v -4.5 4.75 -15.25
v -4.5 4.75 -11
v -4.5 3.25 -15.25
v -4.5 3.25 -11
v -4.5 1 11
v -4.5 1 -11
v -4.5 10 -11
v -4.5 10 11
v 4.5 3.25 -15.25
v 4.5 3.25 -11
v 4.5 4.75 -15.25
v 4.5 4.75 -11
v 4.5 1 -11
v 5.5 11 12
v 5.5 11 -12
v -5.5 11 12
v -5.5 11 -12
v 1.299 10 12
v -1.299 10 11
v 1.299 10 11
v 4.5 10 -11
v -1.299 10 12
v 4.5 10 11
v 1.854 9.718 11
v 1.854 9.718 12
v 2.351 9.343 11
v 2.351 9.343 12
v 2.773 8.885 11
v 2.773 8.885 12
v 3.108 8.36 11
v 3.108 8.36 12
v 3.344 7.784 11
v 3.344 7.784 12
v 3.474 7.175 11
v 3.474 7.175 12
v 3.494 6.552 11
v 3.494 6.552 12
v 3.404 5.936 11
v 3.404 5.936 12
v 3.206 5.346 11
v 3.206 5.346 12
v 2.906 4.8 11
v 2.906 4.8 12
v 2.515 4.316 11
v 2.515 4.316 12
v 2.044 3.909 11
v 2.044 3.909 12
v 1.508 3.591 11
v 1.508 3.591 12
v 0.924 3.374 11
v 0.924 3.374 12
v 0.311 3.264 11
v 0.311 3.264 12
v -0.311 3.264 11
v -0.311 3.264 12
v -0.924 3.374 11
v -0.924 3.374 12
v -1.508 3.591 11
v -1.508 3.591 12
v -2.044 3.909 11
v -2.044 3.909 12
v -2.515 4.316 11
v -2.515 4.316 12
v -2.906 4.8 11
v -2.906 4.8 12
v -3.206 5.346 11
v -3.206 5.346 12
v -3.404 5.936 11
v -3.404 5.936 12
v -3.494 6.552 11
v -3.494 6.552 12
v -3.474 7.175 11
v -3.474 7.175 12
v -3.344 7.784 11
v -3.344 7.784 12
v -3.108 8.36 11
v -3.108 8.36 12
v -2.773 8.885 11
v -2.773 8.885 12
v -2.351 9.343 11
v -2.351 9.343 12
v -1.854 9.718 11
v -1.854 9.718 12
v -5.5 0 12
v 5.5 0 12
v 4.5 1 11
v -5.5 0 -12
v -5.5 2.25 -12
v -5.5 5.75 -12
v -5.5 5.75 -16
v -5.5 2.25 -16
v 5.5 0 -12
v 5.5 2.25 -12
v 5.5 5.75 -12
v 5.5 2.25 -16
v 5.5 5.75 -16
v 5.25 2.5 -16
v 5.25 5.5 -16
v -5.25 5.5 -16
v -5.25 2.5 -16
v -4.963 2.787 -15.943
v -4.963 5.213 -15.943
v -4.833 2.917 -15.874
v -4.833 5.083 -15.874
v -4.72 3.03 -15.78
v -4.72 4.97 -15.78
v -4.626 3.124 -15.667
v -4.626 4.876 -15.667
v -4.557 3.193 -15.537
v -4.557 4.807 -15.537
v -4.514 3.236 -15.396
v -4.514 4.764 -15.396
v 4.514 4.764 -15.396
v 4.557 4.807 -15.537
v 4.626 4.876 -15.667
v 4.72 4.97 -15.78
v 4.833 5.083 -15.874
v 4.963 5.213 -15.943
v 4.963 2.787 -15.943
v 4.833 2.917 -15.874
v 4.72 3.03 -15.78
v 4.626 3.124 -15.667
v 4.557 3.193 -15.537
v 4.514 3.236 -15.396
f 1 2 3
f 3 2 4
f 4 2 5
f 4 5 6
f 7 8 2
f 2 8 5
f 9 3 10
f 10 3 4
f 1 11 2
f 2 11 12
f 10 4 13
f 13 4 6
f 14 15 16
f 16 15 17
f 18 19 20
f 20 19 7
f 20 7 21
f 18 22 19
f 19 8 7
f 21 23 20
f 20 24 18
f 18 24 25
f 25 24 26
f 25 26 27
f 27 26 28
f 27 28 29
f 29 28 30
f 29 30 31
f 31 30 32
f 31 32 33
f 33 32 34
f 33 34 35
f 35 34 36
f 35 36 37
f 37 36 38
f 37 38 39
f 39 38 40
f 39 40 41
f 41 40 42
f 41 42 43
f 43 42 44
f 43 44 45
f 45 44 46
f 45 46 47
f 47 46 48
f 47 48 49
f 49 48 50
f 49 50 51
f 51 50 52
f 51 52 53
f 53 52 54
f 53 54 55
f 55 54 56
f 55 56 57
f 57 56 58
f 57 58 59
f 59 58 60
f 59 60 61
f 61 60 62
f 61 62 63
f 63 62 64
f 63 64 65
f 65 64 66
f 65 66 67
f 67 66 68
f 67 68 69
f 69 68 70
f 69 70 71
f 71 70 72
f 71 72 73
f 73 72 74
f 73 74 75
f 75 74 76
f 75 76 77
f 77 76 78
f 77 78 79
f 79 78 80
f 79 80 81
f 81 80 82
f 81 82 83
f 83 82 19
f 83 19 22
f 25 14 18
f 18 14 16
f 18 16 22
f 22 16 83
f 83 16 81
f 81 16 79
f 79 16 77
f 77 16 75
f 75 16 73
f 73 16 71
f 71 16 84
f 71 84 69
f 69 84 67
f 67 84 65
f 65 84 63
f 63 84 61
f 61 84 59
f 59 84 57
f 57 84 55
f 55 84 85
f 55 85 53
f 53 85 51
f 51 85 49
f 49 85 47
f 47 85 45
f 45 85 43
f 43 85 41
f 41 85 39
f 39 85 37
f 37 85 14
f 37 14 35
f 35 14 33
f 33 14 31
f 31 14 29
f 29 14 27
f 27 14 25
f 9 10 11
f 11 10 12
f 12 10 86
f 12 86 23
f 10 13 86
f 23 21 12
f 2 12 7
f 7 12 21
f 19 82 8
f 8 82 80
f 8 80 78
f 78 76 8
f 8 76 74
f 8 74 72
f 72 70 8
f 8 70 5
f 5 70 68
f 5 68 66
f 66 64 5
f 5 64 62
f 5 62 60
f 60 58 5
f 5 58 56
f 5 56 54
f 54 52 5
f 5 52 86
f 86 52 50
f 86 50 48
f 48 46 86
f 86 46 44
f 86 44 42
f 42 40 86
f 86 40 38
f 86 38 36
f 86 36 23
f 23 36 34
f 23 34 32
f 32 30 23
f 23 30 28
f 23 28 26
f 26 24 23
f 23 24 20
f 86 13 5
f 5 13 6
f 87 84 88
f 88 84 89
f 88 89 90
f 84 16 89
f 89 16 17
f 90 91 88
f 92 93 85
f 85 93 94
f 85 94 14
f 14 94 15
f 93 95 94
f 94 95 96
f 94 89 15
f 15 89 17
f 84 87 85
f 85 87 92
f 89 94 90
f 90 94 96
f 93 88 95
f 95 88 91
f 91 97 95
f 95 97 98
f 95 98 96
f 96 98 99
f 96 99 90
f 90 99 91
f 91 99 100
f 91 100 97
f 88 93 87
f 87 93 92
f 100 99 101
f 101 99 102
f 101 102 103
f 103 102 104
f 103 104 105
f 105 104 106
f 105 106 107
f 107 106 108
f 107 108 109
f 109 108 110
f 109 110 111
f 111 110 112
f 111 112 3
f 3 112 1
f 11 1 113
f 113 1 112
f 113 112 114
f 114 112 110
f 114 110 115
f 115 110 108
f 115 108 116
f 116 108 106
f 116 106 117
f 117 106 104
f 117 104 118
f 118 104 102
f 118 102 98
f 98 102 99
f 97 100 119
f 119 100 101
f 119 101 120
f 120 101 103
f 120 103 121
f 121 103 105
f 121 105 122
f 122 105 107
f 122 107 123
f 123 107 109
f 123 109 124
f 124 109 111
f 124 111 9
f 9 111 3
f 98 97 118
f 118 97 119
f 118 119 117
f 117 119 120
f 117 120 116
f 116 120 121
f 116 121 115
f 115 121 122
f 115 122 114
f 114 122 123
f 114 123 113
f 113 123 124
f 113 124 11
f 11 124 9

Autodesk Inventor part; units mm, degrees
ref_plane "YZ Plane" through (0, 0, 0) normal (1, 0, 0) x (0, 1, 0)
ref_plane "XZ Plane" through (0, 0, 0) normal (0, 1, 0) x (-1, 0, 0)
ref_plane "XY Plane" through (0, 0, 0) normal (0, 0, 1) x (1, 0, 0)
sketch "Sketch1" plane through (0, 0, 0) normal (0, 1, 0) x (-1, 0, 0)
  line L0 (-5.5, -12) -> (5.5, -12)
  line L1 (5.5, -12) -> (5.5, 12)
  line L2 (5.5, 12) -> (-5.5, 12)
  line L3 (-5.5, 12) -> (-5.5, -12)
  line L4 (-5.5, -12) -> (5.5, 12) construction
  line L5 (5.5, -12) -> (-5.5, 12) construction
  point P0 (0, 0)
  dimension "d0" = 11
  dimension "d1" = 24
extrude "Extrusion1" add sketch "Sketch1" along normal blind 10
shell "Shell1" thickness 1 removed faces 1 at (1.8333, 10, 4)
sketch "Sketch2" plane through (-5.5, 0, 12) normal (0, 0, 1) x (1, 0, 0)
  line L0 (0, 10) -> (11, 10) projected
  circle A0 centre (5.5, 6.75) radius 3.5
  point P0 (5.5, 0)
  point P1 (4.201, 10)
  point P2 (6.799, 10)
  dimension "d5" = 7
  dimension "d6" = 0.25
extrude "Extrusion2" cut sketch "Sketch2" against normal blind 9 contours L0 A0 picked at (4.7002, 5.9949)
sketch "Sketch3" plane through (0, 10, 0) normal (0, 1, 0) x (1, 0, 0)
  line L0 (1.299, -12) -> (5.5, -12) projected
  line L1 (5.5, -12) -> (5.5, 12) projected
  line L2 (5.5, 12) -> (-5.5, 12) projected
  line L3 (-5.5, 12) -> (-5.5, -12) projected
  line L4 (-5.5, -12) -> (-1.299, -12) projected
  line L5 (-5.5, 12) -> (5.5, 12)
  line L6 (5.5, 12) -> (5.5, -12)
  line L7 (5.5, -12) -> (-5.5, -12)
  line L8 (-5.5, -12) -> (-5.5, 12)
  point P0 (0, 0)
  point P1 (-1.299, -12)
extrude "Extrusion3" add sketch "Sketch3" along normal blind 1
sketch "Sketch4" plane through (5.5, 0, -12) normal (0, 0, -1) x (-1, 0, 0)
  line L0 (10, 1) -> (10, 10) projected
  line L1 (1, 1) -> (1, 10) projected
  line L2 (1, 3.25) -> (10, 3.25)
  line L3 (1, 1) -> (10, 1) projected
  line L4 (1, 4.75) -> (10, 4.75)
  line L5 (1.5, 4.75) -> (1.5, 3.25)
  line L6 (9.5, 4.75) -> (9.5, 3.25)
  point P0 (5.5, 0)
  point P1 (10, 3.25)
  dimension "d11" = 2.25
  dimension "d14" = 1.5
  dimension "d15" = 0.5
  dimension "d16" = 0.5
extrude "Extrusion4" cut sketch "Sketch4" against normal blind 10 contours L2 L6 L4 L0 | L2 L5 L4 L6 | L1 L4 L5 L2
sketch "Sketch5" plane through (5.5, 0, -12) normal (0, 0, -1) x (-1, 0, 0)
  line L0 (1, 3.25) -> (1, 4.75) projected
  line L1 (1, 4.75) -> (10, 4.75) projected
  line L2 (10, 4.75) -> (10, 3.25) projected
  line L3 (10, 3.25) -> (1, 3.25) projected
  line L4 (11, 0) -> (11, 11) projected
  line L5 (0, 0) -> (0, 11) projected
  line L6 (0, 0) -> (0, 11) projected
  line L7 (0, 5.75) -> (11, 5.75)
  line L8 (11, 5.75) -> (11, 2.25)
  line L9 (11, 2.25) -> (0, 2.25)
  line L10 (0, 2.25) -> (0, 5.75)
  point P0 (5.5, 0)
  point P1 (0, 2.25)
  dimension "d19" = 1
  dimension "d20" = 1
extrude "Extrusion5" add sketch "Sketch5" along normal blind 4
fillet "Fillet1" radius 0.75 4 edges at (-4.5, 4, -16) (0, 3.25, -16) (4.5, 4, -16) (0, 4.75, -16)
properties part number "carcasaXeotype_FLEX-SENSOR"
